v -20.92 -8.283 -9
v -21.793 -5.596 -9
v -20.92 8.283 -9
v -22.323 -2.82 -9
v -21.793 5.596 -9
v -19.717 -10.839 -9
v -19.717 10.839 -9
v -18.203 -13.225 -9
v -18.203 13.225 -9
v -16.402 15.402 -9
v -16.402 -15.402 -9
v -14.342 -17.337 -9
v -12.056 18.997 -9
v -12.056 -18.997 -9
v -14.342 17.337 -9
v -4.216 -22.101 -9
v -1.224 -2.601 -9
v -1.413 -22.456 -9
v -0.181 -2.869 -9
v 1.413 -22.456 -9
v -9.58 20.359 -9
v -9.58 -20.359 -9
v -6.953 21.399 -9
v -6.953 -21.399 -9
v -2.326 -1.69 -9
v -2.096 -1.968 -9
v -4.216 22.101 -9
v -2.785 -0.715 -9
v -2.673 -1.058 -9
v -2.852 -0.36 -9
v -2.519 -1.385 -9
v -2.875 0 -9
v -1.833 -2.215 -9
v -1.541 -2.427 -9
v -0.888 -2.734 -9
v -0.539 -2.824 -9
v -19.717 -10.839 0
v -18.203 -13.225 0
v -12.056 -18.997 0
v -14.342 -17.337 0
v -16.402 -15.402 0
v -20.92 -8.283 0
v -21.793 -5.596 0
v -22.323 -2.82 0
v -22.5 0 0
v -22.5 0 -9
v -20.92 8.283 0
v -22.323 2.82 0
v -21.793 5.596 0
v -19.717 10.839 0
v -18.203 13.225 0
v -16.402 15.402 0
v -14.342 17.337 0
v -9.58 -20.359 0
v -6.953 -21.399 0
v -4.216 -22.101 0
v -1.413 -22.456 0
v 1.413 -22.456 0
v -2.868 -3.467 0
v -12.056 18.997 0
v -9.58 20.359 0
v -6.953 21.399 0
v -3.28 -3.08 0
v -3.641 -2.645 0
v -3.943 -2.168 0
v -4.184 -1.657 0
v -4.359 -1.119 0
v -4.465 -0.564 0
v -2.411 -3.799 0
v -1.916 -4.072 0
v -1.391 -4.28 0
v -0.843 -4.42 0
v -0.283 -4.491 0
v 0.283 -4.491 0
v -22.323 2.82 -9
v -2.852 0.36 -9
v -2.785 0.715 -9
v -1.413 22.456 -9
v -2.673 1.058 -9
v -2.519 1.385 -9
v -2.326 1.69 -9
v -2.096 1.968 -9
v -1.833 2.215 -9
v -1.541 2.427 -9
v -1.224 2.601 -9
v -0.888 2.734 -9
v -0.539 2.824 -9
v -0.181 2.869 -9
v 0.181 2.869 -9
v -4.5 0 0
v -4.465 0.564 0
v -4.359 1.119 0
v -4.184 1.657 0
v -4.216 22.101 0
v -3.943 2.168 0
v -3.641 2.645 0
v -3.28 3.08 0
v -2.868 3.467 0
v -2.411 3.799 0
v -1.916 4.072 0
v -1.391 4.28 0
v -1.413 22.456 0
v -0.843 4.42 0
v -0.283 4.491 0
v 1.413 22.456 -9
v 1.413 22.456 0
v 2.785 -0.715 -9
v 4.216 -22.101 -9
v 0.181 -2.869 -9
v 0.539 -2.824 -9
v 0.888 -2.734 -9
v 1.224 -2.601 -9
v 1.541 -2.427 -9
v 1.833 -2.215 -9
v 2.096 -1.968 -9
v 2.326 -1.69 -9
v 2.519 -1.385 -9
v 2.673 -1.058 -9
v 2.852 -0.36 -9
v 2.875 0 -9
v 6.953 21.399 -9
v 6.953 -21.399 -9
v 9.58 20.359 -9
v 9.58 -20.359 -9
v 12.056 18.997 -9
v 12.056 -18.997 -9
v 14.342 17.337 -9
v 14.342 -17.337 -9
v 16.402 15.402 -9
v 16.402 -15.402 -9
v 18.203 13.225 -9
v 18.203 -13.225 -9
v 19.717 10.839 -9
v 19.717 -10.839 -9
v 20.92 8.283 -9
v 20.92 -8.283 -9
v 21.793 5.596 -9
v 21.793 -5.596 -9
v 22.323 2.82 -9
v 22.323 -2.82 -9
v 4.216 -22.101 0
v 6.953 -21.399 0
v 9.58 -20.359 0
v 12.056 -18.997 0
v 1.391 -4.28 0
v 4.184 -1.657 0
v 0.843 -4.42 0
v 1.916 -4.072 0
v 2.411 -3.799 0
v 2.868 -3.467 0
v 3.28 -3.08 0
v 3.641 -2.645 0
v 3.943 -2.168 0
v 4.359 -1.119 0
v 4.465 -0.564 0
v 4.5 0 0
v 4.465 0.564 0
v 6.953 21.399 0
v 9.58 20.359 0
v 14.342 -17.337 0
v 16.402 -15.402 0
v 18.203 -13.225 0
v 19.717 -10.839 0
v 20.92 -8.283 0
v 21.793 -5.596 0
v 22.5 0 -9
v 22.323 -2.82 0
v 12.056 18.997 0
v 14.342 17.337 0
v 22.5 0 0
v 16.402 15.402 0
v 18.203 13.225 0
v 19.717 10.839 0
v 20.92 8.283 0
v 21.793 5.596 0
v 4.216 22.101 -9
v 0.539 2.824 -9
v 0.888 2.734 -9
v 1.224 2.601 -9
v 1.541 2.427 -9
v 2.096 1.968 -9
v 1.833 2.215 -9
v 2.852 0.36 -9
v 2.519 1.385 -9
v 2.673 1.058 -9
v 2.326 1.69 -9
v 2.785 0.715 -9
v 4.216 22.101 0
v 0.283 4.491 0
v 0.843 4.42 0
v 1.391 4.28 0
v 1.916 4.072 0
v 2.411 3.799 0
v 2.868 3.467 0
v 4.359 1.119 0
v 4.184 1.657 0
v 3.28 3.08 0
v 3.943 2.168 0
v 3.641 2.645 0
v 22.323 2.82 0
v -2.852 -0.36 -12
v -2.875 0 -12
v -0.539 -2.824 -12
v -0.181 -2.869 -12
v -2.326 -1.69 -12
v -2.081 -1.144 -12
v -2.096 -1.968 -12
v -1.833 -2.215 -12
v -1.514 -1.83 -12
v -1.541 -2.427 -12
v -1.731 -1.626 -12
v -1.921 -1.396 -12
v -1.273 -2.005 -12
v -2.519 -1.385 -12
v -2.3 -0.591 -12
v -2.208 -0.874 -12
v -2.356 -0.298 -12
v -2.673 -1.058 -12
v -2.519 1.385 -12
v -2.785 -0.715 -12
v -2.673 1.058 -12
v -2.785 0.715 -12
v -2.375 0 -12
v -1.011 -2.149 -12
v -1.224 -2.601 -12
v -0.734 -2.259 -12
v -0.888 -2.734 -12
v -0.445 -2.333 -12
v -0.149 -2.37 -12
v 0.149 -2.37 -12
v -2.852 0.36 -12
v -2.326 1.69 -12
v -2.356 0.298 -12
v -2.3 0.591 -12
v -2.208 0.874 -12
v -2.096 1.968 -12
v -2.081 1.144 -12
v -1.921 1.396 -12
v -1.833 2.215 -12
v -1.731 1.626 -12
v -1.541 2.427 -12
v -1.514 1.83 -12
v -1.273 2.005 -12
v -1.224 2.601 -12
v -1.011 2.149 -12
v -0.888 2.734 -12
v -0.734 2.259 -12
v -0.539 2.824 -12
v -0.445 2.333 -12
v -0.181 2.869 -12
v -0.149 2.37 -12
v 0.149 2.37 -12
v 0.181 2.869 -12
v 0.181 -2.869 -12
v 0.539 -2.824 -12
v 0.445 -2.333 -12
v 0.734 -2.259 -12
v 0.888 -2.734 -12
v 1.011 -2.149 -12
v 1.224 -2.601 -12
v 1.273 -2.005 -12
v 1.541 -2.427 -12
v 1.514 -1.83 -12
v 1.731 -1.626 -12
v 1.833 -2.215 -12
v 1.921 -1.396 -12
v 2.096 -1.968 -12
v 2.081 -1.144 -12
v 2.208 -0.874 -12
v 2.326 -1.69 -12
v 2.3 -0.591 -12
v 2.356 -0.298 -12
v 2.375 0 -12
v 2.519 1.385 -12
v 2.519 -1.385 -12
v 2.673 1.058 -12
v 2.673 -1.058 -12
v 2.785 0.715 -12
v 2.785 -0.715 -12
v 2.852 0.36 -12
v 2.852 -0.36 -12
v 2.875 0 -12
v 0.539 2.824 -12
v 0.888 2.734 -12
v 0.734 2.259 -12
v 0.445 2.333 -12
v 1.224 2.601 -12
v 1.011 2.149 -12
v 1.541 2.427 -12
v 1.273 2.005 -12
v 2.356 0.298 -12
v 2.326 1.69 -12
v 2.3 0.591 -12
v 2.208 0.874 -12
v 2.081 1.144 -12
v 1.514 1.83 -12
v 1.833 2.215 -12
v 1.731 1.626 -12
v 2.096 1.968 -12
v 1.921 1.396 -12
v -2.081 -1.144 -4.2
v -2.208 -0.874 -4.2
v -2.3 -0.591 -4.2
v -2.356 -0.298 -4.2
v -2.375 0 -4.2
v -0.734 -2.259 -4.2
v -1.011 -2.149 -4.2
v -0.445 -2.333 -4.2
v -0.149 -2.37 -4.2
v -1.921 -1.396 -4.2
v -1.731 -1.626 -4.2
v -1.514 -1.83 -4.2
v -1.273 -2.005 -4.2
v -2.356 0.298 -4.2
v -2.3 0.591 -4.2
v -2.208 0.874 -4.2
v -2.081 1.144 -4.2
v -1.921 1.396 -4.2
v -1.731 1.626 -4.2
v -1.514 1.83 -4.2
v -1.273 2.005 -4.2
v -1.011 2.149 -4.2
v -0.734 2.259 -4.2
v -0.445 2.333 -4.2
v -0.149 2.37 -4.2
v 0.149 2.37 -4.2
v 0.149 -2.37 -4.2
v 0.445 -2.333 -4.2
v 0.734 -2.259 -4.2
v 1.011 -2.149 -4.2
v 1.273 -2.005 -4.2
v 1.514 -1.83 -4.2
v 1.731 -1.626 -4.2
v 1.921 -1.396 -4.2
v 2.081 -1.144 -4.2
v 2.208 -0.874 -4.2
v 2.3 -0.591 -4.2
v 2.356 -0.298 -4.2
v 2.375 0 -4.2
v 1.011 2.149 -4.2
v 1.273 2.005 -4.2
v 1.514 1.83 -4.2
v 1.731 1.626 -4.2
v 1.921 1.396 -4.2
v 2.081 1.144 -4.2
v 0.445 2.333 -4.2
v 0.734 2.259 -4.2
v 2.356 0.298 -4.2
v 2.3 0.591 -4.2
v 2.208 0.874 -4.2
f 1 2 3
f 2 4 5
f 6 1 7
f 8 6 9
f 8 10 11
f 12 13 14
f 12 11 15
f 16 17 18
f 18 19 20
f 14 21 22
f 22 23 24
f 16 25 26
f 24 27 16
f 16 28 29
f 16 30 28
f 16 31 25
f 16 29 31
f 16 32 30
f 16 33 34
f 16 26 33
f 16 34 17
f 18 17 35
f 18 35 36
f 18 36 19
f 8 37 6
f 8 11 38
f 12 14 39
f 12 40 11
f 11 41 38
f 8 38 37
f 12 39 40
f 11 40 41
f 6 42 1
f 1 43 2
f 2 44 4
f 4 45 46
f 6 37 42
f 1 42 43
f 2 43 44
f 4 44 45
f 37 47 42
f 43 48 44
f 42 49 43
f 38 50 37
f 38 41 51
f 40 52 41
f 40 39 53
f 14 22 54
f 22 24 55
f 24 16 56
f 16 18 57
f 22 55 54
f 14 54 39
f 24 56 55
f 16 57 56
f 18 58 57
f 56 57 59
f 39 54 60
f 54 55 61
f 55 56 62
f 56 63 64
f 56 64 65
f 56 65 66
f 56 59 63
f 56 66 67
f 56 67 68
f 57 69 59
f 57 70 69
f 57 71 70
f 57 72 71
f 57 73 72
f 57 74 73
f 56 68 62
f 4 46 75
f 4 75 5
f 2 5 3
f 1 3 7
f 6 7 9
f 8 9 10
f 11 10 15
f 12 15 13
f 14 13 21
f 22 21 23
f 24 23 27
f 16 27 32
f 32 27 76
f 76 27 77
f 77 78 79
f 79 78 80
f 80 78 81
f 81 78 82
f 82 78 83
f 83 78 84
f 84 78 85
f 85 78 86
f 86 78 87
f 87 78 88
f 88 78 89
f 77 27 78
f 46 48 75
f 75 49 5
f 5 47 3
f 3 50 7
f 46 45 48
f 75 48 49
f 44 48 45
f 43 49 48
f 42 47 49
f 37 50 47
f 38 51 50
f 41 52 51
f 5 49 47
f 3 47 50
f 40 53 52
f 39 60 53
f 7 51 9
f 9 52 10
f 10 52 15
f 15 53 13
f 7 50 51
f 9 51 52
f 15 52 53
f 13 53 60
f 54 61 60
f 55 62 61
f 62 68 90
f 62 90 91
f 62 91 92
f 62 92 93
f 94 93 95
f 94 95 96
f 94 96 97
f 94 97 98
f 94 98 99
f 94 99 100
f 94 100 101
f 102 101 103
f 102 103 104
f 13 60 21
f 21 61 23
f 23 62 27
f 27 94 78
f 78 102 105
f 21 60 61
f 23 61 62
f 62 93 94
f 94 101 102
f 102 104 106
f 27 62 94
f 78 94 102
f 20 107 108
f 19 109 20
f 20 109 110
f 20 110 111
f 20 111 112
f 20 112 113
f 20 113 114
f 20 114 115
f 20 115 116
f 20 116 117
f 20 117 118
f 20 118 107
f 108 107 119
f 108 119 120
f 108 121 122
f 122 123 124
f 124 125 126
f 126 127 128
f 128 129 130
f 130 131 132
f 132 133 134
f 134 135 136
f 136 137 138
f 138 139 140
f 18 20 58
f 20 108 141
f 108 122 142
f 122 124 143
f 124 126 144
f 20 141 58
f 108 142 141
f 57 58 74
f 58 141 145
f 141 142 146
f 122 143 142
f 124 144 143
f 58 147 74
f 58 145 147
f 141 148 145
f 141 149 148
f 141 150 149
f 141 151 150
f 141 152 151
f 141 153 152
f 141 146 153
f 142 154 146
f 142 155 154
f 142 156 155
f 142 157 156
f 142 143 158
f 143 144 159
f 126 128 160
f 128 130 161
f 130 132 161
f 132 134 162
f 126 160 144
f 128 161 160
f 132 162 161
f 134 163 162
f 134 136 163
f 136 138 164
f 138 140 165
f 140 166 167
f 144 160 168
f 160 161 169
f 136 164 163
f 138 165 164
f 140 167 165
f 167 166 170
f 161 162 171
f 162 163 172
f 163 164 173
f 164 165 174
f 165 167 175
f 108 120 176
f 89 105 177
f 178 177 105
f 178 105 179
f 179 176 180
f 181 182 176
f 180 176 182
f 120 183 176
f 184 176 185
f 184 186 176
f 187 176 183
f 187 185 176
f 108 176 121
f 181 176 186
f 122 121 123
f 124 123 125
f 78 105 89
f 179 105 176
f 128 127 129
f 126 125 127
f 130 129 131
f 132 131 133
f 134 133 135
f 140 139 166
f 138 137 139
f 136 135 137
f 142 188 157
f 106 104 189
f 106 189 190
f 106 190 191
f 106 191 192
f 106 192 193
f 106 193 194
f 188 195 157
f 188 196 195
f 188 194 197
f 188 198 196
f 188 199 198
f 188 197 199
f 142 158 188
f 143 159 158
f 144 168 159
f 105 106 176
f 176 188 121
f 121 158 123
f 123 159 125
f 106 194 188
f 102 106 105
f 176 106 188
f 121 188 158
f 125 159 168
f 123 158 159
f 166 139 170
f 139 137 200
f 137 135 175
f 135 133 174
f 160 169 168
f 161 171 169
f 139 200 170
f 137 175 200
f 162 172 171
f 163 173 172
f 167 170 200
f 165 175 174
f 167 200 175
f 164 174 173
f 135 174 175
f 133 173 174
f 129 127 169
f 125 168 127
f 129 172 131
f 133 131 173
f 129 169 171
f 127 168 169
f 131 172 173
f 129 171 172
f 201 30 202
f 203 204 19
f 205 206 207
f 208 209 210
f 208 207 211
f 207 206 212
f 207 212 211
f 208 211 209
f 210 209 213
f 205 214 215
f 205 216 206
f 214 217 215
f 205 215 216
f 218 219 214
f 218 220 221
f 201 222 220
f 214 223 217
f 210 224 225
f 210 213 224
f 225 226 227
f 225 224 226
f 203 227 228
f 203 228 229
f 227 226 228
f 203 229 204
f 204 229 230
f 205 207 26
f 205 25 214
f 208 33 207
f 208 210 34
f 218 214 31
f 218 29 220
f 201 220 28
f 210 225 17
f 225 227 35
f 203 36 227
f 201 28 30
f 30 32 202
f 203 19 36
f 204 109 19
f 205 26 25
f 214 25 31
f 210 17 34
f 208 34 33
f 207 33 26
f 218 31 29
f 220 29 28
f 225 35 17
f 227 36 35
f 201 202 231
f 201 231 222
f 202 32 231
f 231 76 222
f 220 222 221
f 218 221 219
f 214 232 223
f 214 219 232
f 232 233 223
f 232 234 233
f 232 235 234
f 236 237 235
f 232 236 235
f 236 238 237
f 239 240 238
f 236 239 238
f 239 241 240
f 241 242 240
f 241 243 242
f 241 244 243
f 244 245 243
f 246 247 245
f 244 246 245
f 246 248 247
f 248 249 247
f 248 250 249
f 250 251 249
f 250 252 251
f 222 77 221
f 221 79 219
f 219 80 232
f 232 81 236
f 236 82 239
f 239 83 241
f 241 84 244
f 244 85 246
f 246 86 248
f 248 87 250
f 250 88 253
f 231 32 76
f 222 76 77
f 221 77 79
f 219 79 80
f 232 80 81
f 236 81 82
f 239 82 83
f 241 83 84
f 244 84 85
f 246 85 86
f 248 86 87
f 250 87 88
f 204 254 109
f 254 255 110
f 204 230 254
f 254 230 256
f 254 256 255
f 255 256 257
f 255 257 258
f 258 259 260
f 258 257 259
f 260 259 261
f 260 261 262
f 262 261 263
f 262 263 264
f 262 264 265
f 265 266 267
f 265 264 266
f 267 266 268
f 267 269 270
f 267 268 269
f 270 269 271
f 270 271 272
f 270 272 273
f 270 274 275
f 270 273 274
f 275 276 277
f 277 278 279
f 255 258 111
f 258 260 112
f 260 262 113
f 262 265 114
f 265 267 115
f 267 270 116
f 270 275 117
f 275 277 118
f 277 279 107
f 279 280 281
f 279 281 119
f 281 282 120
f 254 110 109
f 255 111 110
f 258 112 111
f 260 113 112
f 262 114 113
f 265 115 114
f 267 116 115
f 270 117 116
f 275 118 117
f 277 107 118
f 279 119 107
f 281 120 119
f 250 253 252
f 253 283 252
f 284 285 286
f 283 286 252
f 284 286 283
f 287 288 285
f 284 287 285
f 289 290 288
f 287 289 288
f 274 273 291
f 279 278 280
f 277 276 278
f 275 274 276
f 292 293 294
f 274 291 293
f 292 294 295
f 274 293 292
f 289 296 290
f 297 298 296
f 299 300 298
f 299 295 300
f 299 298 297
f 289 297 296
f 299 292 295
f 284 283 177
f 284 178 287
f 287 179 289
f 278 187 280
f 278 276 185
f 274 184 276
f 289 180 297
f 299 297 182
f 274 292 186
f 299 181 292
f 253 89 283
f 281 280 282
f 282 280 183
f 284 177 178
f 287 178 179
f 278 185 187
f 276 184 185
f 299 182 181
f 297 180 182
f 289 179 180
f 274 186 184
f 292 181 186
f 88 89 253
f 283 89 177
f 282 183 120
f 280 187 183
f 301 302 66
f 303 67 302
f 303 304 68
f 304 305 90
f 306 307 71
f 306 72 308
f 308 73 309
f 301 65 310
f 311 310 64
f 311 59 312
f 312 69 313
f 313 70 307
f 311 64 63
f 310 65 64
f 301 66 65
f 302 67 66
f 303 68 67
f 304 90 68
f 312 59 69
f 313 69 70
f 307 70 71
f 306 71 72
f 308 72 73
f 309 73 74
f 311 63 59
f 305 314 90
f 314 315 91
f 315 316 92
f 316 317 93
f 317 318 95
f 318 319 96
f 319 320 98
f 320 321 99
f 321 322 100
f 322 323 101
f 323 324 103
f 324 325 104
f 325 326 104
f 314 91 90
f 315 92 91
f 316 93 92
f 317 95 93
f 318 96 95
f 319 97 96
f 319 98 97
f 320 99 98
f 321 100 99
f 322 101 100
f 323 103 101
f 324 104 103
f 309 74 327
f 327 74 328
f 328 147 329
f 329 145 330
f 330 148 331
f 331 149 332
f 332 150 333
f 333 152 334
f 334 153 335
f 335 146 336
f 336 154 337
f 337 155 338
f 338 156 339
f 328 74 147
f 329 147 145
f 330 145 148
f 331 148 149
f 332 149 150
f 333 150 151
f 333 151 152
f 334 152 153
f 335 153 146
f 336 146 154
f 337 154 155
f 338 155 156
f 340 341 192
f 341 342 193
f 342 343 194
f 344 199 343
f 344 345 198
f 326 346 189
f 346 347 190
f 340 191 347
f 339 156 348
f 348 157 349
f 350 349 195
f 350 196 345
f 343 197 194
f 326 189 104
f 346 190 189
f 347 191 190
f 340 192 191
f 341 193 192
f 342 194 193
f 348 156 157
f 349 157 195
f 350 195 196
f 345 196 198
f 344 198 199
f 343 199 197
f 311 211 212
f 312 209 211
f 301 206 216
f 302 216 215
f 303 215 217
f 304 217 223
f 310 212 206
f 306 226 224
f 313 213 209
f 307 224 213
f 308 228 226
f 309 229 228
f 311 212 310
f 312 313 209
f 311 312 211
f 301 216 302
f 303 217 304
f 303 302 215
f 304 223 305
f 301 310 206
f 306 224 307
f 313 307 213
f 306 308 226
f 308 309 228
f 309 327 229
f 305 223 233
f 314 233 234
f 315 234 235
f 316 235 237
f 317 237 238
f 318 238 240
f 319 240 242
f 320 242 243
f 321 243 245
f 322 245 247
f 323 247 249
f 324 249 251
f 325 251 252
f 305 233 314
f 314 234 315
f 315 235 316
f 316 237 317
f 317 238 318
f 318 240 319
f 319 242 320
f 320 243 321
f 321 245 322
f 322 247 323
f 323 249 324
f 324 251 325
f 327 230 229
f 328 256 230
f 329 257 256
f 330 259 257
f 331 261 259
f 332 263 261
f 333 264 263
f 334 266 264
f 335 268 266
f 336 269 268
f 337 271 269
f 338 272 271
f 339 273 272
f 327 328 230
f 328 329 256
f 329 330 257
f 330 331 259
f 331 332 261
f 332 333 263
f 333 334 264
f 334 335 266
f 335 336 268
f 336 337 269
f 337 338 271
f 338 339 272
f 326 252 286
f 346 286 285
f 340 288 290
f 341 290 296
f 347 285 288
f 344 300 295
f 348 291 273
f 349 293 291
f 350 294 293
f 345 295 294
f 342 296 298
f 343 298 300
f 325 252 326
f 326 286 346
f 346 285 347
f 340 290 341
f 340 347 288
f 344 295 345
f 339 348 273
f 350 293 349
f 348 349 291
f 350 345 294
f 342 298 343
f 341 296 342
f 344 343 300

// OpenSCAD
$fn = 50;


difference() {
	union() {
		translate(v = [0, 0, -9.0000000000]) {
			cylinder(h = 9, r = 22.5000000000);
		}
		#translate(v = [0, 0, -12.0000000000]) {
			cylinder(h = 12, r = 2.8750000000);
		}
	}
	union() {
		translate(v = [0, 0, 0]) {
			rotate(a = [0, 0, 0]) {
				difference() {
					union() {
						translate(v = [0, 0, -12.0000000000]) {
							cylinder(h = 12, r = 2.2500000000);
						}
						translate(v = [0, 0, -4.2000000000]) {
							cylinder(h = 4.2000000000, r1 = 2.3750000000, r2 = 4.5000000000);
						}
						translate(v = [0, 0, -12.0000000000]) {
							cylinder(h = 12, r = 2.3750000000);
						}
						translate(v = [0, 0, -12.0000000000]) {
							cylinder(h = 12, r = 2.2500000000);
						}
					}
					union();
				}
			}
		}
	}
}
